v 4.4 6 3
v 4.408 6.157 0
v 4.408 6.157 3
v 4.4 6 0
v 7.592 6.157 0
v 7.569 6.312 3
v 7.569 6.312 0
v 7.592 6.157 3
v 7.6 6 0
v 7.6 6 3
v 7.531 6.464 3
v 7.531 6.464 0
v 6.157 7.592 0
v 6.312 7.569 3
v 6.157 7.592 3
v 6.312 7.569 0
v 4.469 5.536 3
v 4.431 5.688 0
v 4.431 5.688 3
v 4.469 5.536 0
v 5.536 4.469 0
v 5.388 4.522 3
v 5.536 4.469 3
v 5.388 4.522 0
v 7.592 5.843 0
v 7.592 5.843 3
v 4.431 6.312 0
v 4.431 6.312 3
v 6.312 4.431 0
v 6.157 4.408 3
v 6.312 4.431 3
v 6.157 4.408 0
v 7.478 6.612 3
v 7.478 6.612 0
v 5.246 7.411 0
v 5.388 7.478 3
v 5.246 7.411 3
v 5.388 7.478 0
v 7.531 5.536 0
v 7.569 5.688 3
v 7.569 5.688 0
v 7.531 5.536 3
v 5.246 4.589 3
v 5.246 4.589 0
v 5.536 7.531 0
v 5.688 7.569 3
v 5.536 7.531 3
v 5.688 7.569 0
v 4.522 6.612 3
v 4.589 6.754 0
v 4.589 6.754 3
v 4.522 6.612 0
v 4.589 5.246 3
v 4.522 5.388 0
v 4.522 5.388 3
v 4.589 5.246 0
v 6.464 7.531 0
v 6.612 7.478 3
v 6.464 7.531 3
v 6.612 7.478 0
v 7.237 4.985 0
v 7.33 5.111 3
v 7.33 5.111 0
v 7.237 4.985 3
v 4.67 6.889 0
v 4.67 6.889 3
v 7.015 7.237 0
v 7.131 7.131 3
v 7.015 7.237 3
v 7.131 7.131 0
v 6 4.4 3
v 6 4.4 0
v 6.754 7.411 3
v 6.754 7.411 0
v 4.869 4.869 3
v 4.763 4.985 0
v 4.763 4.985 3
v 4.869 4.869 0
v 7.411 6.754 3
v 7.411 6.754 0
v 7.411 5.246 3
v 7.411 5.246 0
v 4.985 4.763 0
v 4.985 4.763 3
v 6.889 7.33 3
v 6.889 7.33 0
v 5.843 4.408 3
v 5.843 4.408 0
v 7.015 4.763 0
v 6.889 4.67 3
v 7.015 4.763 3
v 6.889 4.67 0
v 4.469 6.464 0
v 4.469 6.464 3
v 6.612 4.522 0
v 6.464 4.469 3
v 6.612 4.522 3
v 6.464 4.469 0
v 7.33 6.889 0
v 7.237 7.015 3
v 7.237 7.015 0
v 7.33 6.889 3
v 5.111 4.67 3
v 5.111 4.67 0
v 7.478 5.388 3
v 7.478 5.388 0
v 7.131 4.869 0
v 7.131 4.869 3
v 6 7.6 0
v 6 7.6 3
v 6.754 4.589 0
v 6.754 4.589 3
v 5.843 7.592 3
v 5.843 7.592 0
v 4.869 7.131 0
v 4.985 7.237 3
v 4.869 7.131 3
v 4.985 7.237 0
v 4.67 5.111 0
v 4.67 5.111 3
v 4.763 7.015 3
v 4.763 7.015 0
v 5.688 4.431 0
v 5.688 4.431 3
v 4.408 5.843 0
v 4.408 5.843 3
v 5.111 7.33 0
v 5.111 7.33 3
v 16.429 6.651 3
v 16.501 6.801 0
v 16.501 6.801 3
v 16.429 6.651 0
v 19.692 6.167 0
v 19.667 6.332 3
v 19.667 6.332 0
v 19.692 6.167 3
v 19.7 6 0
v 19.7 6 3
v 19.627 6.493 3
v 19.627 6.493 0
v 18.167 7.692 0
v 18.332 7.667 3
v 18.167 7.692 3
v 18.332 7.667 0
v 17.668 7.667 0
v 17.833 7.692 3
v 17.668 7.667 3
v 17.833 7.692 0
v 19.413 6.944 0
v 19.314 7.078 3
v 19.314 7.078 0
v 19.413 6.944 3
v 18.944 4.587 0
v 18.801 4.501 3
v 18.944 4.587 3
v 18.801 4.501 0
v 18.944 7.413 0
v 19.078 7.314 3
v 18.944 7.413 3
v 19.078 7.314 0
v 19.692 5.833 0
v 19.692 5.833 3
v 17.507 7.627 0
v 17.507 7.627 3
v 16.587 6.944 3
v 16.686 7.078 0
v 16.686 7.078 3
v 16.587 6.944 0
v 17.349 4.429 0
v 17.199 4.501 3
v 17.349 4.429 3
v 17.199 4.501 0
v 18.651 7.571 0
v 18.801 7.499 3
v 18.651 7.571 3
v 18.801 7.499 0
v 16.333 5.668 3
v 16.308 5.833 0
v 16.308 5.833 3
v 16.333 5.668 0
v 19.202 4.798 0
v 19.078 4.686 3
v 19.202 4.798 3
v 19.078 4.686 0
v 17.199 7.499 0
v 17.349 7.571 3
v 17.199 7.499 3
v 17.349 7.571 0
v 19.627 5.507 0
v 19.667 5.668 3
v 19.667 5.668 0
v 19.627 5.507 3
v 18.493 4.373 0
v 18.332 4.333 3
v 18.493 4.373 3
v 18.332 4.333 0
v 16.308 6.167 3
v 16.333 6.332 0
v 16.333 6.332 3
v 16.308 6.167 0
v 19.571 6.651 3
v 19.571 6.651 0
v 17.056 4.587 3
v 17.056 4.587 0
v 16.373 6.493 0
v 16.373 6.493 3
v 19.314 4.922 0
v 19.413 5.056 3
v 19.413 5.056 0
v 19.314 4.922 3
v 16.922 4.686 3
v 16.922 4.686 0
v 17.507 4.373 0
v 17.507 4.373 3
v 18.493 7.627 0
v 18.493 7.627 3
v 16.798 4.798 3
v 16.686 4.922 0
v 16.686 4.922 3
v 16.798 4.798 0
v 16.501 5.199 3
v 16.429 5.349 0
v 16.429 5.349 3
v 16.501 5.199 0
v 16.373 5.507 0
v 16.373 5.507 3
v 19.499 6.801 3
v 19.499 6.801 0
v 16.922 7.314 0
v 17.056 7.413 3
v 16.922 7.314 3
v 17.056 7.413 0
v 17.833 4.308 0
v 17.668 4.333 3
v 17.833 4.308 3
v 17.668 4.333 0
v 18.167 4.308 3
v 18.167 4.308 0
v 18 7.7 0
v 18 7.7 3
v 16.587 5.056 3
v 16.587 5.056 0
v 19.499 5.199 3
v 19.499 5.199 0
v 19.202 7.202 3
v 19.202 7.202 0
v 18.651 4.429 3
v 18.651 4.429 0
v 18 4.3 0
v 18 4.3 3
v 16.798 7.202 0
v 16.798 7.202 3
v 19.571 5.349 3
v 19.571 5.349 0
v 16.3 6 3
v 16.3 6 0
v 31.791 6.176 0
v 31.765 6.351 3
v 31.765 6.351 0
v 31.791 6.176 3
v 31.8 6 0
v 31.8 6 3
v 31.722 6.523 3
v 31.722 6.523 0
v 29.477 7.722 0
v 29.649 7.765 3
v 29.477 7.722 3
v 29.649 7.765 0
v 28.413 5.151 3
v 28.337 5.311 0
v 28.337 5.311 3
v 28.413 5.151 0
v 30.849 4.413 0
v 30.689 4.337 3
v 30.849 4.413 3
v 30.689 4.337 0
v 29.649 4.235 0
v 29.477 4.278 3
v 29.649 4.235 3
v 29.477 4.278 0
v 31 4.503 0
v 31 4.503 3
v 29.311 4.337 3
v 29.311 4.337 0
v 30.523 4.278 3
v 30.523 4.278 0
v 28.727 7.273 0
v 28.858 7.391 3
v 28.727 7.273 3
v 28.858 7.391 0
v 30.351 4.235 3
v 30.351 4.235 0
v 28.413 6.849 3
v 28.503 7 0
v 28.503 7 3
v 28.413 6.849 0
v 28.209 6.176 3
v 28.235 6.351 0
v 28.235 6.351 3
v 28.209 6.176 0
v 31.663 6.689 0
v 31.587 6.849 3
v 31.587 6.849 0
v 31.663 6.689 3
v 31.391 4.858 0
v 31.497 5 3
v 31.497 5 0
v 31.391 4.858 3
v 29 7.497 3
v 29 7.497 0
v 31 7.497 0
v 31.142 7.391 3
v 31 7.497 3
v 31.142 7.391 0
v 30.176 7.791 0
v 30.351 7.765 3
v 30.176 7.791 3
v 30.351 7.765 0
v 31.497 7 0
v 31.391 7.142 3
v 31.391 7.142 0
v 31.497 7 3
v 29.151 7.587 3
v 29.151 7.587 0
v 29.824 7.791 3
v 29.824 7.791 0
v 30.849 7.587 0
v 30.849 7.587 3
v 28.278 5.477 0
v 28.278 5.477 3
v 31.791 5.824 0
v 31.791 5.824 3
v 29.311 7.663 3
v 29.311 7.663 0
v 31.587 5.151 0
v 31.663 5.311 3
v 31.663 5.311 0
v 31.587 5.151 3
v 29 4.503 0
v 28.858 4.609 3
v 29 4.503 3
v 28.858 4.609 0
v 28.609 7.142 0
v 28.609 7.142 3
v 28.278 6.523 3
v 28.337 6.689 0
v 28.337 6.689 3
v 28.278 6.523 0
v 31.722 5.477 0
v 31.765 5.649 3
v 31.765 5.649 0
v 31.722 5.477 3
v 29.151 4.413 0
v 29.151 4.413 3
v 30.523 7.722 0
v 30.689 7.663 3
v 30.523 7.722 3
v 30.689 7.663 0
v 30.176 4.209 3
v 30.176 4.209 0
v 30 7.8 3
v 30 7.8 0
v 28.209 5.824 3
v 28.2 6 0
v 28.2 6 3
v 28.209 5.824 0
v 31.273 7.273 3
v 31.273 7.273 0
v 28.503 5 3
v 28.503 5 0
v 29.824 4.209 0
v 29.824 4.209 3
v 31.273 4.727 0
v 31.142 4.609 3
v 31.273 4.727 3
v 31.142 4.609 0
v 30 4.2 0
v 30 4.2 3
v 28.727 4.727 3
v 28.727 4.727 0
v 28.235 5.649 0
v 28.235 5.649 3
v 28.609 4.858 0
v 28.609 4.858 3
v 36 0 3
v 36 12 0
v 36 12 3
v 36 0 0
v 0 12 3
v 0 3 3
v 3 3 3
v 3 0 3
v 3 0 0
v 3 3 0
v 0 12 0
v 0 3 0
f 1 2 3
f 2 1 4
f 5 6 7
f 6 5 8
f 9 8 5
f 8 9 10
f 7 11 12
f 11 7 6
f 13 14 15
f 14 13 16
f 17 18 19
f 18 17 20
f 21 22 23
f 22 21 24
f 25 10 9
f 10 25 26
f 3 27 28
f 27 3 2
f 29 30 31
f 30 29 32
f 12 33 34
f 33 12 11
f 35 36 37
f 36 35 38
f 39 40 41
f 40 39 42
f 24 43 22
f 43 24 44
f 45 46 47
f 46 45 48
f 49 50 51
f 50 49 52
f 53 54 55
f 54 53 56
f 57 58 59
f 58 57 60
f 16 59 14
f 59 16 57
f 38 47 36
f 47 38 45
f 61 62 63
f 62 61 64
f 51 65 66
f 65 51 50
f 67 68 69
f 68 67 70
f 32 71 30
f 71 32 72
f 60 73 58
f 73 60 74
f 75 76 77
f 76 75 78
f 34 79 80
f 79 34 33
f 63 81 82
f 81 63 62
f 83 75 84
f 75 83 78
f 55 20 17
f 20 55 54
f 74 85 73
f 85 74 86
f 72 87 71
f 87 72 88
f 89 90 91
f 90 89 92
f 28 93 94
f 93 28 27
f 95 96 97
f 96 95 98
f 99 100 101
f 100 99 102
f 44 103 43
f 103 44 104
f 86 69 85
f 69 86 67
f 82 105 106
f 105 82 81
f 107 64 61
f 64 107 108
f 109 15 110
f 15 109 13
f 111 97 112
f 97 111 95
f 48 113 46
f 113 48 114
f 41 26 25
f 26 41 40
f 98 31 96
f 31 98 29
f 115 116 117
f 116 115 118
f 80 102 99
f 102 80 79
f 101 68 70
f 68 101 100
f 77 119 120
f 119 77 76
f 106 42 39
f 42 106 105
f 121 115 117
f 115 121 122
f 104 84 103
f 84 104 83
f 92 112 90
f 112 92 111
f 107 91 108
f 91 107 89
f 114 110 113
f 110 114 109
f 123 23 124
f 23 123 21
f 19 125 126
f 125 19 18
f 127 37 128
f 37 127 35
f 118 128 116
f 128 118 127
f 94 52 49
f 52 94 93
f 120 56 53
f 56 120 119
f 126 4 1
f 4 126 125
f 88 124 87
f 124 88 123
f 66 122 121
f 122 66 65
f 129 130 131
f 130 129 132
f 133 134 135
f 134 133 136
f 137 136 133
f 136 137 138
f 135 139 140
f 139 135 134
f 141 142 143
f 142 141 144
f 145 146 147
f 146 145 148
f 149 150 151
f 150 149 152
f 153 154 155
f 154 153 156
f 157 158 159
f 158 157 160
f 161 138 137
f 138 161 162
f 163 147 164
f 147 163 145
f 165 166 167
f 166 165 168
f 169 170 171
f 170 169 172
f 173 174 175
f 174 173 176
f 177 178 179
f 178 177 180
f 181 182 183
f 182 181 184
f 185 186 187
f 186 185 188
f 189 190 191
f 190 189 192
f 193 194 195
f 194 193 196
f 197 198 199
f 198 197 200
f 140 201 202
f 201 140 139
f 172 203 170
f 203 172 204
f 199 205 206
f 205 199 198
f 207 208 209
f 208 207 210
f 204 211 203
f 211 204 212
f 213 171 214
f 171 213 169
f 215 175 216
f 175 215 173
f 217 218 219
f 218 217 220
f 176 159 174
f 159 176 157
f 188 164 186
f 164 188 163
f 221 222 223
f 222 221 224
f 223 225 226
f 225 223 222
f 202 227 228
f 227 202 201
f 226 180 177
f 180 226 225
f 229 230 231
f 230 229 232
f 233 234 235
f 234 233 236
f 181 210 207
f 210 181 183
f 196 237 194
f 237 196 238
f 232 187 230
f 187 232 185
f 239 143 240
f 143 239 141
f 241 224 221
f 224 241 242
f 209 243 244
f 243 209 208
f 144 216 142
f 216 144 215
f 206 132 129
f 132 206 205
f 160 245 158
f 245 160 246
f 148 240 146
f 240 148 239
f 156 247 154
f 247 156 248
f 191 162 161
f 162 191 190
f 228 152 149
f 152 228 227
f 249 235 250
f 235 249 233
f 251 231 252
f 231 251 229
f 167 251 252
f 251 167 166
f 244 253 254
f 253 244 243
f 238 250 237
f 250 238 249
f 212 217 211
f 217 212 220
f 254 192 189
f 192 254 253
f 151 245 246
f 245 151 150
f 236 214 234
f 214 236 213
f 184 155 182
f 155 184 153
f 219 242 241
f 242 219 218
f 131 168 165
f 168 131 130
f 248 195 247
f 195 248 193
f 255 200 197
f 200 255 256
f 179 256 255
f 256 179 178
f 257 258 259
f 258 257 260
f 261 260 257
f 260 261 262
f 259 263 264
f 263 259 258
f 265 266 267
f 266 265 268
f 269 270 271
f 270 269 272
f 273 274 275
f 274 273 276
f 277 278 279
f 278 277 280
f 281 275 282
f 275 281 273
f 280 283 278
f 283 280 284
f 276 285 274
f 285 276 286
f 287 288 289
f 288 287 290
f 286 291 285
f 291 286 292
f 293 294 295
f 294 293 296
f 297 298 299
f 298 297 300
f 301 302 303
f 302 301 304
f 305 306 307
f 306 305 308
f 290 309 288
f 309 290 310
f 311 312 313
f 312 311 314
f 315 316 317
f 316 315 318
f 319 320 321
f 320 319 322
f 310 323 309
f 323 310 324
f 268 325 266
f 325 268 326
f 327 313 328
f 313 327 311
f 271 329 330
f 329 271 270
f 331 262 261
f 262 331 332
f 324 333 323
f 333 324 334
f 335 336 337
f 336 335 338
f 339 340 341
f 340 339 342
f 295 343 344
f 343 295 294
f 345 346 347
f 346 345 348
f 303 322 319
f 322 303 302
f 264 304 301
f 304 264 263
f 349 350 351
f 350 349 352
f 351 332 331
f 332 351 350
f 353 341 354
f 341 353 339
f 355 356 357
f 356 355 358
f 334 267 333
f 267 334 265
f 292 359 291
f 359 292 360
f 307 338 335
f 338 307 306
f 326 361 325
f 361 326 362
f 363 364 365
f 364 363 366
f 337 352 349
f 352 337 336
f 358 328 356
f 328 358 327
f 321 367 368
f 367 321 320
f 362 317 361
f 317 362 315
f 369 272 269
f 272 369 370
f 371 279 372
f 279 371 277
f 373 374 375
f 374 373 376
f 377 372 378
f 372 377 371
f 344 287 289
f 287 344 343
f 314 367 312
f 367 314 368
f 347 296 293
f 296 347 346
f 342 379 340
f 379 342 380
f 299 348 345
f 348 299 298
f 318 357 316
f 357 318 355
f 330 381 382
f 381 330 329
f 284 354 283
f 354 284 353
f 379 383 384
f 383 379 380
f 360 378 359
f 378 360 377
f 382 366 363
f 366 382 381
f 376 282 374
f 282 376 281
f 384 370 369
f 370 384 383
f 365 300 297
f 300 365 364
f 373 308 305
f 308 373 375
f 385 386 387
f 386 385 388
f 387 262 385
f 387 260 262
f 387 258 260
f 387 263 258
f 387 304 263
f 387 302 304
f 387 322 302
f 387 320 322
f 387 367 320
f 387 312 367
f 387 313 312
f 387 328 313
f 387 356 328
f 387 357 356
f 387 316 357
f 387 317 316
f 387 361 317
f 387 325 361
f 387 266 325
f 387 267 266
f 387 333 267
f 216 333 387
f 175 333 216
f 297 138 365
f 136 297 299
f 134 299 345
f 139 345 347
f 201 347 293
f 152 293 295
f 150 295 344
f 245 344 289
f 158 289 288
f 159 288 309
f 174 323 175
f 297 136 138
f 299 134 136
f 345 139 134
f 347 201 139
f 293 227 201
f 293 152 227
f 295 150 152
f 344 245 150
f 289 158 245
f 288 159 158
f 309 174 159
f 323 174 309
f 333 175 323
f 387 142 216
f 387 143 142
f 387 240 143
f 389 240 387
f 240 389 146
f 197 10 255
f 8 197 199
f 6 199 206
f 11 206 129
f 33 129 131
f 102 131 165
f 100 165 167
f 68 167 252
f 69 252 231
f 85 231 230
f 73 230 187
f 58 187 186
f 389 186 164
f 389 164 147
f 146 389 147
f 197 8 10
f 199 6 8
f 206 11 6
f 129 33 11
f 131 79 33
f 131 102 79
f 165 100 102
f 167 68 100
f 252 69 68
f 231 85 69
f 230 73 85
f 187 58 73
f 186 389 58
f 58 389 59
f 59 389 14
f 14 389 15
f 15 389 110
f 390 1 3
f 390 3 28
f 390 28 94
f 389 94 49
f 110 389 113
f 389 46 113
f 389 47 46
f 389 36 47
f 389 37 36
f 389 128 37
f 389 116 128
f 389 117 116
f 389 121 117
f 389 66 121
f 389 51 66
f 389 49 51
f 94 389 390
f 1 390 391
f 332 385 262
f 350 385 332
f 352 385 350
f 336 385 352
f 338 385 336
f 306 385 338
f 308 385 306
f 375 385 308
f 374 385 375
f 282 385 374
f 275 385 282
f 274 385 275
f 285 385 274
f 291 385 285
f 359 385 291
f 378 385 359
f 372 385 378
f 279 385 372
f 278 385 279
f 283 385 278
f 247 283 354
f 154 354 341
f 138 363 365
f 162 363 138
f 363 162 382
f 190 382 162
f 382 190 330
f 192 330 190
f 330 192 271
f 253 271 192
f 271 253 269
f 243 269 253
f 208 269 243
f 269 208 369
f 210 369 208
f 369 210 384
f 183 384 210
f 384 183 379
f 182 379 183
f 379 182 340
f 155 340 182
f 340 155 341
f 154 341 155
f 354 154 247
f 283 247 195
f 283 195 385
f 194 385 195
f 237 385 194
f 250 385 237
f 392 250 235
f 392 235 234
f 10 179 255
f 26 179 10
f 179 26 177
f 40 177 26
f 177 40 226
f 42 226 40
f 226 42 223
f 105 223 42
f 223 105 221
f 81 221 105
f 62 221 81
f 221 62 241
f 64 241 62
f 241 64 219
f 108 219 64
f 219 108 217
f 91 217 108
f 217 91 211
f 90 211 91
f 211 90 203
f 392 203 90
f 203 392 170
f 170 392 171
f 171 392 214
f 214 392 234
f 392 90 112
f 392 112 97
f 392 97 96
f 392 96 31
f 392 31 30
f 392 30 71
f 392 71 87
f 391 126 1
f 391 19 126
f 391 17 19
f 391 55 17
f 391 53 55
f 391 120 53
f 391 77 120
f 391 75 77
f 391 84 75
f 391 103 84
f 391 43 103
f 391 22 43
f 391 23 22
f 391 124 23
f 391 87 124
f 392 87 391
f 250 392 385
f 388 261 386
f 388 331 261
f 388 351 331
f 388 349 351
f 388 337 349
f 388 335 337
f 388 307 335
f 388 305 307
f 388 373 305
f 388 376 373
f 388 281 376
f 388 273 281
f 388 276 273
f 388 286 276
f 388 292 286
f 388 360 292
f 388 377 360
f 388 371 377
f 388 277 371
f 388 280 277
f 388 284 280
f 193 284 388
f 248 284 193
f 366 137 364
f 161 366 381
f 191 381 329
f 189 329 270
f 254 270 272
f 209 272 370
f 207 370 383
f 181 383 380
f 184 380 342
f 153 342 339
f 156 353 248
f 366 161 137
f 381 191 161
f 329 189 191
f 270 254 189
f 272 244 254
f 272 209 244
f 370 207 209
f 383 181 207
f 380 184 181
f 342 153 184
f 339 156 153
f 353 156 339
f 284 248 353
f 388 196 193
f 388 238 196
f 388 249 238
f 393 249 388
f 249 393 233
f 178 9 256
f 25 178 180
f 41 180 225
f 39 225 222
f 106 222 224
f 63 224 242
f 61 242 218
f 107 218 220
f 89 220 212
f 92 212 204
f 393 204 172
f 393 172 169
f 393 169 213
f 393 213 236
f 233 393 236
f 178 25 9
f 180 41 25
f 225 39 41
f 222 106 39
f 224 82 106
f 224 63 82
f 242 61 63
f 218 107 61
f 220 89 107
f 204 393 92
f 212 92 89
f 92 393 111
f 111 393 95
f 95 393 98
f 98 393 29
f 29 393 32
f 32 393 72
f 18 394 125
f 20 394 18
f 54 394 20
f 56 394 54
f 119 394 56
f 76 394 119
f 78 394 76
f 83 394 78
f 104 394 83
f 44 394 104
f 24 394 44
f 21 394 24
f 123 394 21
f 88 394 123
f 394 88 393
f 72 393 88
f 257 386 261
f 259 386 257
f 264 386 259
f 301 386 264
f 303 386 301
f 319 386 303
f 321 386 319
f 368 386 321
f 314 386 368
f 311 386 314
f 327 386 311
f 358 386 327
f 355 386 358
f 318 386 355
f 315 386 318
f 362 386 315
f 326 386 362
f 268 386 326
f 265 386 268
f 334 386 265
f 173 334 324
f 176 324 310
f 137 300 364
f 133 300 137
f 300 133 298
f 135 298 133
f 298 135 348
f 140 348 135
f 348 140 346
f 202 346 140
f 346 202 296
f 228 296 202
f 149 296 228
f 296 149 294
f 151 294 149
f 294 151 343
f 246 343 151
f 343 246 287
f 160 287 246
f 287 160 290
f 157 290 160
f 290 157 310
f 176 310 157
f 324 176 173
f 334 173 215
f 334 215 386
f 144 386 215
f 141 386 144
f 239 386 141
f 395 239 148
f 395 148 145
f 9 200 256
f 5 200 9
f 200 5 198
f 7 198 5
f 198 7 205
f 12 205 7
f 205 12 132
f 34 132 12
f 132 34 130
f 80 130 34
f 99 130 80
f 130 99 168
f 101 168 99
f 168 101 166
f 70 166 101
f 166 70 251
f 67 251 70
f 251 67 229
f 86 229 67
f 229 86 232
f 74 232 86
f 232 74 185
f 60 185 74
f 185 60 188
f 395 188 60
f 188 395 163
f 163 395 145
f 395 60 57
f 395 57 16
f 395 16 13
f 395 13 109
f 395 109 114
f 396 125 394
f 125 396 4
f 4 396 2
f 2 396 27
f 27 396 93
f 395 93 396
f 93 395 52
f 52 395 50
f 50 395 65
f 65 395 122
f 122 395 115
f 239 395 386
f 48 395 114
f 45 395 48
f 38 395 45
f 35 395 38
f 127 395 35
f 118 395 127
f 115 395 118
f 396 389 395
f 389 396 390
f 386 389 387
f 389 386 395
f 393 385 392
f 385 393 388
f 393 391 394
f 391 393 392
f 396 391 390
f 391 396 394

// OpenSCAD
// Screw-fit test. From left to right: 3.2, 3.4, 3.6 mm nominal holes.
// Printed holes may differ; choose the hole that fits your actual M3 hardware.
$fn=64;
difference() {
  cube([36,12,3]);
  for (i=[0:2])
    translate([6+12*i,6,-0.1])
      cylinder(h=3.2,d=3.2+0.2*i);
  // Corner notch identifies the 3.2 mm end, even after turning the part over.
  translate([-1,-1,-0.1]) cube([4,4,3.2]);
}
